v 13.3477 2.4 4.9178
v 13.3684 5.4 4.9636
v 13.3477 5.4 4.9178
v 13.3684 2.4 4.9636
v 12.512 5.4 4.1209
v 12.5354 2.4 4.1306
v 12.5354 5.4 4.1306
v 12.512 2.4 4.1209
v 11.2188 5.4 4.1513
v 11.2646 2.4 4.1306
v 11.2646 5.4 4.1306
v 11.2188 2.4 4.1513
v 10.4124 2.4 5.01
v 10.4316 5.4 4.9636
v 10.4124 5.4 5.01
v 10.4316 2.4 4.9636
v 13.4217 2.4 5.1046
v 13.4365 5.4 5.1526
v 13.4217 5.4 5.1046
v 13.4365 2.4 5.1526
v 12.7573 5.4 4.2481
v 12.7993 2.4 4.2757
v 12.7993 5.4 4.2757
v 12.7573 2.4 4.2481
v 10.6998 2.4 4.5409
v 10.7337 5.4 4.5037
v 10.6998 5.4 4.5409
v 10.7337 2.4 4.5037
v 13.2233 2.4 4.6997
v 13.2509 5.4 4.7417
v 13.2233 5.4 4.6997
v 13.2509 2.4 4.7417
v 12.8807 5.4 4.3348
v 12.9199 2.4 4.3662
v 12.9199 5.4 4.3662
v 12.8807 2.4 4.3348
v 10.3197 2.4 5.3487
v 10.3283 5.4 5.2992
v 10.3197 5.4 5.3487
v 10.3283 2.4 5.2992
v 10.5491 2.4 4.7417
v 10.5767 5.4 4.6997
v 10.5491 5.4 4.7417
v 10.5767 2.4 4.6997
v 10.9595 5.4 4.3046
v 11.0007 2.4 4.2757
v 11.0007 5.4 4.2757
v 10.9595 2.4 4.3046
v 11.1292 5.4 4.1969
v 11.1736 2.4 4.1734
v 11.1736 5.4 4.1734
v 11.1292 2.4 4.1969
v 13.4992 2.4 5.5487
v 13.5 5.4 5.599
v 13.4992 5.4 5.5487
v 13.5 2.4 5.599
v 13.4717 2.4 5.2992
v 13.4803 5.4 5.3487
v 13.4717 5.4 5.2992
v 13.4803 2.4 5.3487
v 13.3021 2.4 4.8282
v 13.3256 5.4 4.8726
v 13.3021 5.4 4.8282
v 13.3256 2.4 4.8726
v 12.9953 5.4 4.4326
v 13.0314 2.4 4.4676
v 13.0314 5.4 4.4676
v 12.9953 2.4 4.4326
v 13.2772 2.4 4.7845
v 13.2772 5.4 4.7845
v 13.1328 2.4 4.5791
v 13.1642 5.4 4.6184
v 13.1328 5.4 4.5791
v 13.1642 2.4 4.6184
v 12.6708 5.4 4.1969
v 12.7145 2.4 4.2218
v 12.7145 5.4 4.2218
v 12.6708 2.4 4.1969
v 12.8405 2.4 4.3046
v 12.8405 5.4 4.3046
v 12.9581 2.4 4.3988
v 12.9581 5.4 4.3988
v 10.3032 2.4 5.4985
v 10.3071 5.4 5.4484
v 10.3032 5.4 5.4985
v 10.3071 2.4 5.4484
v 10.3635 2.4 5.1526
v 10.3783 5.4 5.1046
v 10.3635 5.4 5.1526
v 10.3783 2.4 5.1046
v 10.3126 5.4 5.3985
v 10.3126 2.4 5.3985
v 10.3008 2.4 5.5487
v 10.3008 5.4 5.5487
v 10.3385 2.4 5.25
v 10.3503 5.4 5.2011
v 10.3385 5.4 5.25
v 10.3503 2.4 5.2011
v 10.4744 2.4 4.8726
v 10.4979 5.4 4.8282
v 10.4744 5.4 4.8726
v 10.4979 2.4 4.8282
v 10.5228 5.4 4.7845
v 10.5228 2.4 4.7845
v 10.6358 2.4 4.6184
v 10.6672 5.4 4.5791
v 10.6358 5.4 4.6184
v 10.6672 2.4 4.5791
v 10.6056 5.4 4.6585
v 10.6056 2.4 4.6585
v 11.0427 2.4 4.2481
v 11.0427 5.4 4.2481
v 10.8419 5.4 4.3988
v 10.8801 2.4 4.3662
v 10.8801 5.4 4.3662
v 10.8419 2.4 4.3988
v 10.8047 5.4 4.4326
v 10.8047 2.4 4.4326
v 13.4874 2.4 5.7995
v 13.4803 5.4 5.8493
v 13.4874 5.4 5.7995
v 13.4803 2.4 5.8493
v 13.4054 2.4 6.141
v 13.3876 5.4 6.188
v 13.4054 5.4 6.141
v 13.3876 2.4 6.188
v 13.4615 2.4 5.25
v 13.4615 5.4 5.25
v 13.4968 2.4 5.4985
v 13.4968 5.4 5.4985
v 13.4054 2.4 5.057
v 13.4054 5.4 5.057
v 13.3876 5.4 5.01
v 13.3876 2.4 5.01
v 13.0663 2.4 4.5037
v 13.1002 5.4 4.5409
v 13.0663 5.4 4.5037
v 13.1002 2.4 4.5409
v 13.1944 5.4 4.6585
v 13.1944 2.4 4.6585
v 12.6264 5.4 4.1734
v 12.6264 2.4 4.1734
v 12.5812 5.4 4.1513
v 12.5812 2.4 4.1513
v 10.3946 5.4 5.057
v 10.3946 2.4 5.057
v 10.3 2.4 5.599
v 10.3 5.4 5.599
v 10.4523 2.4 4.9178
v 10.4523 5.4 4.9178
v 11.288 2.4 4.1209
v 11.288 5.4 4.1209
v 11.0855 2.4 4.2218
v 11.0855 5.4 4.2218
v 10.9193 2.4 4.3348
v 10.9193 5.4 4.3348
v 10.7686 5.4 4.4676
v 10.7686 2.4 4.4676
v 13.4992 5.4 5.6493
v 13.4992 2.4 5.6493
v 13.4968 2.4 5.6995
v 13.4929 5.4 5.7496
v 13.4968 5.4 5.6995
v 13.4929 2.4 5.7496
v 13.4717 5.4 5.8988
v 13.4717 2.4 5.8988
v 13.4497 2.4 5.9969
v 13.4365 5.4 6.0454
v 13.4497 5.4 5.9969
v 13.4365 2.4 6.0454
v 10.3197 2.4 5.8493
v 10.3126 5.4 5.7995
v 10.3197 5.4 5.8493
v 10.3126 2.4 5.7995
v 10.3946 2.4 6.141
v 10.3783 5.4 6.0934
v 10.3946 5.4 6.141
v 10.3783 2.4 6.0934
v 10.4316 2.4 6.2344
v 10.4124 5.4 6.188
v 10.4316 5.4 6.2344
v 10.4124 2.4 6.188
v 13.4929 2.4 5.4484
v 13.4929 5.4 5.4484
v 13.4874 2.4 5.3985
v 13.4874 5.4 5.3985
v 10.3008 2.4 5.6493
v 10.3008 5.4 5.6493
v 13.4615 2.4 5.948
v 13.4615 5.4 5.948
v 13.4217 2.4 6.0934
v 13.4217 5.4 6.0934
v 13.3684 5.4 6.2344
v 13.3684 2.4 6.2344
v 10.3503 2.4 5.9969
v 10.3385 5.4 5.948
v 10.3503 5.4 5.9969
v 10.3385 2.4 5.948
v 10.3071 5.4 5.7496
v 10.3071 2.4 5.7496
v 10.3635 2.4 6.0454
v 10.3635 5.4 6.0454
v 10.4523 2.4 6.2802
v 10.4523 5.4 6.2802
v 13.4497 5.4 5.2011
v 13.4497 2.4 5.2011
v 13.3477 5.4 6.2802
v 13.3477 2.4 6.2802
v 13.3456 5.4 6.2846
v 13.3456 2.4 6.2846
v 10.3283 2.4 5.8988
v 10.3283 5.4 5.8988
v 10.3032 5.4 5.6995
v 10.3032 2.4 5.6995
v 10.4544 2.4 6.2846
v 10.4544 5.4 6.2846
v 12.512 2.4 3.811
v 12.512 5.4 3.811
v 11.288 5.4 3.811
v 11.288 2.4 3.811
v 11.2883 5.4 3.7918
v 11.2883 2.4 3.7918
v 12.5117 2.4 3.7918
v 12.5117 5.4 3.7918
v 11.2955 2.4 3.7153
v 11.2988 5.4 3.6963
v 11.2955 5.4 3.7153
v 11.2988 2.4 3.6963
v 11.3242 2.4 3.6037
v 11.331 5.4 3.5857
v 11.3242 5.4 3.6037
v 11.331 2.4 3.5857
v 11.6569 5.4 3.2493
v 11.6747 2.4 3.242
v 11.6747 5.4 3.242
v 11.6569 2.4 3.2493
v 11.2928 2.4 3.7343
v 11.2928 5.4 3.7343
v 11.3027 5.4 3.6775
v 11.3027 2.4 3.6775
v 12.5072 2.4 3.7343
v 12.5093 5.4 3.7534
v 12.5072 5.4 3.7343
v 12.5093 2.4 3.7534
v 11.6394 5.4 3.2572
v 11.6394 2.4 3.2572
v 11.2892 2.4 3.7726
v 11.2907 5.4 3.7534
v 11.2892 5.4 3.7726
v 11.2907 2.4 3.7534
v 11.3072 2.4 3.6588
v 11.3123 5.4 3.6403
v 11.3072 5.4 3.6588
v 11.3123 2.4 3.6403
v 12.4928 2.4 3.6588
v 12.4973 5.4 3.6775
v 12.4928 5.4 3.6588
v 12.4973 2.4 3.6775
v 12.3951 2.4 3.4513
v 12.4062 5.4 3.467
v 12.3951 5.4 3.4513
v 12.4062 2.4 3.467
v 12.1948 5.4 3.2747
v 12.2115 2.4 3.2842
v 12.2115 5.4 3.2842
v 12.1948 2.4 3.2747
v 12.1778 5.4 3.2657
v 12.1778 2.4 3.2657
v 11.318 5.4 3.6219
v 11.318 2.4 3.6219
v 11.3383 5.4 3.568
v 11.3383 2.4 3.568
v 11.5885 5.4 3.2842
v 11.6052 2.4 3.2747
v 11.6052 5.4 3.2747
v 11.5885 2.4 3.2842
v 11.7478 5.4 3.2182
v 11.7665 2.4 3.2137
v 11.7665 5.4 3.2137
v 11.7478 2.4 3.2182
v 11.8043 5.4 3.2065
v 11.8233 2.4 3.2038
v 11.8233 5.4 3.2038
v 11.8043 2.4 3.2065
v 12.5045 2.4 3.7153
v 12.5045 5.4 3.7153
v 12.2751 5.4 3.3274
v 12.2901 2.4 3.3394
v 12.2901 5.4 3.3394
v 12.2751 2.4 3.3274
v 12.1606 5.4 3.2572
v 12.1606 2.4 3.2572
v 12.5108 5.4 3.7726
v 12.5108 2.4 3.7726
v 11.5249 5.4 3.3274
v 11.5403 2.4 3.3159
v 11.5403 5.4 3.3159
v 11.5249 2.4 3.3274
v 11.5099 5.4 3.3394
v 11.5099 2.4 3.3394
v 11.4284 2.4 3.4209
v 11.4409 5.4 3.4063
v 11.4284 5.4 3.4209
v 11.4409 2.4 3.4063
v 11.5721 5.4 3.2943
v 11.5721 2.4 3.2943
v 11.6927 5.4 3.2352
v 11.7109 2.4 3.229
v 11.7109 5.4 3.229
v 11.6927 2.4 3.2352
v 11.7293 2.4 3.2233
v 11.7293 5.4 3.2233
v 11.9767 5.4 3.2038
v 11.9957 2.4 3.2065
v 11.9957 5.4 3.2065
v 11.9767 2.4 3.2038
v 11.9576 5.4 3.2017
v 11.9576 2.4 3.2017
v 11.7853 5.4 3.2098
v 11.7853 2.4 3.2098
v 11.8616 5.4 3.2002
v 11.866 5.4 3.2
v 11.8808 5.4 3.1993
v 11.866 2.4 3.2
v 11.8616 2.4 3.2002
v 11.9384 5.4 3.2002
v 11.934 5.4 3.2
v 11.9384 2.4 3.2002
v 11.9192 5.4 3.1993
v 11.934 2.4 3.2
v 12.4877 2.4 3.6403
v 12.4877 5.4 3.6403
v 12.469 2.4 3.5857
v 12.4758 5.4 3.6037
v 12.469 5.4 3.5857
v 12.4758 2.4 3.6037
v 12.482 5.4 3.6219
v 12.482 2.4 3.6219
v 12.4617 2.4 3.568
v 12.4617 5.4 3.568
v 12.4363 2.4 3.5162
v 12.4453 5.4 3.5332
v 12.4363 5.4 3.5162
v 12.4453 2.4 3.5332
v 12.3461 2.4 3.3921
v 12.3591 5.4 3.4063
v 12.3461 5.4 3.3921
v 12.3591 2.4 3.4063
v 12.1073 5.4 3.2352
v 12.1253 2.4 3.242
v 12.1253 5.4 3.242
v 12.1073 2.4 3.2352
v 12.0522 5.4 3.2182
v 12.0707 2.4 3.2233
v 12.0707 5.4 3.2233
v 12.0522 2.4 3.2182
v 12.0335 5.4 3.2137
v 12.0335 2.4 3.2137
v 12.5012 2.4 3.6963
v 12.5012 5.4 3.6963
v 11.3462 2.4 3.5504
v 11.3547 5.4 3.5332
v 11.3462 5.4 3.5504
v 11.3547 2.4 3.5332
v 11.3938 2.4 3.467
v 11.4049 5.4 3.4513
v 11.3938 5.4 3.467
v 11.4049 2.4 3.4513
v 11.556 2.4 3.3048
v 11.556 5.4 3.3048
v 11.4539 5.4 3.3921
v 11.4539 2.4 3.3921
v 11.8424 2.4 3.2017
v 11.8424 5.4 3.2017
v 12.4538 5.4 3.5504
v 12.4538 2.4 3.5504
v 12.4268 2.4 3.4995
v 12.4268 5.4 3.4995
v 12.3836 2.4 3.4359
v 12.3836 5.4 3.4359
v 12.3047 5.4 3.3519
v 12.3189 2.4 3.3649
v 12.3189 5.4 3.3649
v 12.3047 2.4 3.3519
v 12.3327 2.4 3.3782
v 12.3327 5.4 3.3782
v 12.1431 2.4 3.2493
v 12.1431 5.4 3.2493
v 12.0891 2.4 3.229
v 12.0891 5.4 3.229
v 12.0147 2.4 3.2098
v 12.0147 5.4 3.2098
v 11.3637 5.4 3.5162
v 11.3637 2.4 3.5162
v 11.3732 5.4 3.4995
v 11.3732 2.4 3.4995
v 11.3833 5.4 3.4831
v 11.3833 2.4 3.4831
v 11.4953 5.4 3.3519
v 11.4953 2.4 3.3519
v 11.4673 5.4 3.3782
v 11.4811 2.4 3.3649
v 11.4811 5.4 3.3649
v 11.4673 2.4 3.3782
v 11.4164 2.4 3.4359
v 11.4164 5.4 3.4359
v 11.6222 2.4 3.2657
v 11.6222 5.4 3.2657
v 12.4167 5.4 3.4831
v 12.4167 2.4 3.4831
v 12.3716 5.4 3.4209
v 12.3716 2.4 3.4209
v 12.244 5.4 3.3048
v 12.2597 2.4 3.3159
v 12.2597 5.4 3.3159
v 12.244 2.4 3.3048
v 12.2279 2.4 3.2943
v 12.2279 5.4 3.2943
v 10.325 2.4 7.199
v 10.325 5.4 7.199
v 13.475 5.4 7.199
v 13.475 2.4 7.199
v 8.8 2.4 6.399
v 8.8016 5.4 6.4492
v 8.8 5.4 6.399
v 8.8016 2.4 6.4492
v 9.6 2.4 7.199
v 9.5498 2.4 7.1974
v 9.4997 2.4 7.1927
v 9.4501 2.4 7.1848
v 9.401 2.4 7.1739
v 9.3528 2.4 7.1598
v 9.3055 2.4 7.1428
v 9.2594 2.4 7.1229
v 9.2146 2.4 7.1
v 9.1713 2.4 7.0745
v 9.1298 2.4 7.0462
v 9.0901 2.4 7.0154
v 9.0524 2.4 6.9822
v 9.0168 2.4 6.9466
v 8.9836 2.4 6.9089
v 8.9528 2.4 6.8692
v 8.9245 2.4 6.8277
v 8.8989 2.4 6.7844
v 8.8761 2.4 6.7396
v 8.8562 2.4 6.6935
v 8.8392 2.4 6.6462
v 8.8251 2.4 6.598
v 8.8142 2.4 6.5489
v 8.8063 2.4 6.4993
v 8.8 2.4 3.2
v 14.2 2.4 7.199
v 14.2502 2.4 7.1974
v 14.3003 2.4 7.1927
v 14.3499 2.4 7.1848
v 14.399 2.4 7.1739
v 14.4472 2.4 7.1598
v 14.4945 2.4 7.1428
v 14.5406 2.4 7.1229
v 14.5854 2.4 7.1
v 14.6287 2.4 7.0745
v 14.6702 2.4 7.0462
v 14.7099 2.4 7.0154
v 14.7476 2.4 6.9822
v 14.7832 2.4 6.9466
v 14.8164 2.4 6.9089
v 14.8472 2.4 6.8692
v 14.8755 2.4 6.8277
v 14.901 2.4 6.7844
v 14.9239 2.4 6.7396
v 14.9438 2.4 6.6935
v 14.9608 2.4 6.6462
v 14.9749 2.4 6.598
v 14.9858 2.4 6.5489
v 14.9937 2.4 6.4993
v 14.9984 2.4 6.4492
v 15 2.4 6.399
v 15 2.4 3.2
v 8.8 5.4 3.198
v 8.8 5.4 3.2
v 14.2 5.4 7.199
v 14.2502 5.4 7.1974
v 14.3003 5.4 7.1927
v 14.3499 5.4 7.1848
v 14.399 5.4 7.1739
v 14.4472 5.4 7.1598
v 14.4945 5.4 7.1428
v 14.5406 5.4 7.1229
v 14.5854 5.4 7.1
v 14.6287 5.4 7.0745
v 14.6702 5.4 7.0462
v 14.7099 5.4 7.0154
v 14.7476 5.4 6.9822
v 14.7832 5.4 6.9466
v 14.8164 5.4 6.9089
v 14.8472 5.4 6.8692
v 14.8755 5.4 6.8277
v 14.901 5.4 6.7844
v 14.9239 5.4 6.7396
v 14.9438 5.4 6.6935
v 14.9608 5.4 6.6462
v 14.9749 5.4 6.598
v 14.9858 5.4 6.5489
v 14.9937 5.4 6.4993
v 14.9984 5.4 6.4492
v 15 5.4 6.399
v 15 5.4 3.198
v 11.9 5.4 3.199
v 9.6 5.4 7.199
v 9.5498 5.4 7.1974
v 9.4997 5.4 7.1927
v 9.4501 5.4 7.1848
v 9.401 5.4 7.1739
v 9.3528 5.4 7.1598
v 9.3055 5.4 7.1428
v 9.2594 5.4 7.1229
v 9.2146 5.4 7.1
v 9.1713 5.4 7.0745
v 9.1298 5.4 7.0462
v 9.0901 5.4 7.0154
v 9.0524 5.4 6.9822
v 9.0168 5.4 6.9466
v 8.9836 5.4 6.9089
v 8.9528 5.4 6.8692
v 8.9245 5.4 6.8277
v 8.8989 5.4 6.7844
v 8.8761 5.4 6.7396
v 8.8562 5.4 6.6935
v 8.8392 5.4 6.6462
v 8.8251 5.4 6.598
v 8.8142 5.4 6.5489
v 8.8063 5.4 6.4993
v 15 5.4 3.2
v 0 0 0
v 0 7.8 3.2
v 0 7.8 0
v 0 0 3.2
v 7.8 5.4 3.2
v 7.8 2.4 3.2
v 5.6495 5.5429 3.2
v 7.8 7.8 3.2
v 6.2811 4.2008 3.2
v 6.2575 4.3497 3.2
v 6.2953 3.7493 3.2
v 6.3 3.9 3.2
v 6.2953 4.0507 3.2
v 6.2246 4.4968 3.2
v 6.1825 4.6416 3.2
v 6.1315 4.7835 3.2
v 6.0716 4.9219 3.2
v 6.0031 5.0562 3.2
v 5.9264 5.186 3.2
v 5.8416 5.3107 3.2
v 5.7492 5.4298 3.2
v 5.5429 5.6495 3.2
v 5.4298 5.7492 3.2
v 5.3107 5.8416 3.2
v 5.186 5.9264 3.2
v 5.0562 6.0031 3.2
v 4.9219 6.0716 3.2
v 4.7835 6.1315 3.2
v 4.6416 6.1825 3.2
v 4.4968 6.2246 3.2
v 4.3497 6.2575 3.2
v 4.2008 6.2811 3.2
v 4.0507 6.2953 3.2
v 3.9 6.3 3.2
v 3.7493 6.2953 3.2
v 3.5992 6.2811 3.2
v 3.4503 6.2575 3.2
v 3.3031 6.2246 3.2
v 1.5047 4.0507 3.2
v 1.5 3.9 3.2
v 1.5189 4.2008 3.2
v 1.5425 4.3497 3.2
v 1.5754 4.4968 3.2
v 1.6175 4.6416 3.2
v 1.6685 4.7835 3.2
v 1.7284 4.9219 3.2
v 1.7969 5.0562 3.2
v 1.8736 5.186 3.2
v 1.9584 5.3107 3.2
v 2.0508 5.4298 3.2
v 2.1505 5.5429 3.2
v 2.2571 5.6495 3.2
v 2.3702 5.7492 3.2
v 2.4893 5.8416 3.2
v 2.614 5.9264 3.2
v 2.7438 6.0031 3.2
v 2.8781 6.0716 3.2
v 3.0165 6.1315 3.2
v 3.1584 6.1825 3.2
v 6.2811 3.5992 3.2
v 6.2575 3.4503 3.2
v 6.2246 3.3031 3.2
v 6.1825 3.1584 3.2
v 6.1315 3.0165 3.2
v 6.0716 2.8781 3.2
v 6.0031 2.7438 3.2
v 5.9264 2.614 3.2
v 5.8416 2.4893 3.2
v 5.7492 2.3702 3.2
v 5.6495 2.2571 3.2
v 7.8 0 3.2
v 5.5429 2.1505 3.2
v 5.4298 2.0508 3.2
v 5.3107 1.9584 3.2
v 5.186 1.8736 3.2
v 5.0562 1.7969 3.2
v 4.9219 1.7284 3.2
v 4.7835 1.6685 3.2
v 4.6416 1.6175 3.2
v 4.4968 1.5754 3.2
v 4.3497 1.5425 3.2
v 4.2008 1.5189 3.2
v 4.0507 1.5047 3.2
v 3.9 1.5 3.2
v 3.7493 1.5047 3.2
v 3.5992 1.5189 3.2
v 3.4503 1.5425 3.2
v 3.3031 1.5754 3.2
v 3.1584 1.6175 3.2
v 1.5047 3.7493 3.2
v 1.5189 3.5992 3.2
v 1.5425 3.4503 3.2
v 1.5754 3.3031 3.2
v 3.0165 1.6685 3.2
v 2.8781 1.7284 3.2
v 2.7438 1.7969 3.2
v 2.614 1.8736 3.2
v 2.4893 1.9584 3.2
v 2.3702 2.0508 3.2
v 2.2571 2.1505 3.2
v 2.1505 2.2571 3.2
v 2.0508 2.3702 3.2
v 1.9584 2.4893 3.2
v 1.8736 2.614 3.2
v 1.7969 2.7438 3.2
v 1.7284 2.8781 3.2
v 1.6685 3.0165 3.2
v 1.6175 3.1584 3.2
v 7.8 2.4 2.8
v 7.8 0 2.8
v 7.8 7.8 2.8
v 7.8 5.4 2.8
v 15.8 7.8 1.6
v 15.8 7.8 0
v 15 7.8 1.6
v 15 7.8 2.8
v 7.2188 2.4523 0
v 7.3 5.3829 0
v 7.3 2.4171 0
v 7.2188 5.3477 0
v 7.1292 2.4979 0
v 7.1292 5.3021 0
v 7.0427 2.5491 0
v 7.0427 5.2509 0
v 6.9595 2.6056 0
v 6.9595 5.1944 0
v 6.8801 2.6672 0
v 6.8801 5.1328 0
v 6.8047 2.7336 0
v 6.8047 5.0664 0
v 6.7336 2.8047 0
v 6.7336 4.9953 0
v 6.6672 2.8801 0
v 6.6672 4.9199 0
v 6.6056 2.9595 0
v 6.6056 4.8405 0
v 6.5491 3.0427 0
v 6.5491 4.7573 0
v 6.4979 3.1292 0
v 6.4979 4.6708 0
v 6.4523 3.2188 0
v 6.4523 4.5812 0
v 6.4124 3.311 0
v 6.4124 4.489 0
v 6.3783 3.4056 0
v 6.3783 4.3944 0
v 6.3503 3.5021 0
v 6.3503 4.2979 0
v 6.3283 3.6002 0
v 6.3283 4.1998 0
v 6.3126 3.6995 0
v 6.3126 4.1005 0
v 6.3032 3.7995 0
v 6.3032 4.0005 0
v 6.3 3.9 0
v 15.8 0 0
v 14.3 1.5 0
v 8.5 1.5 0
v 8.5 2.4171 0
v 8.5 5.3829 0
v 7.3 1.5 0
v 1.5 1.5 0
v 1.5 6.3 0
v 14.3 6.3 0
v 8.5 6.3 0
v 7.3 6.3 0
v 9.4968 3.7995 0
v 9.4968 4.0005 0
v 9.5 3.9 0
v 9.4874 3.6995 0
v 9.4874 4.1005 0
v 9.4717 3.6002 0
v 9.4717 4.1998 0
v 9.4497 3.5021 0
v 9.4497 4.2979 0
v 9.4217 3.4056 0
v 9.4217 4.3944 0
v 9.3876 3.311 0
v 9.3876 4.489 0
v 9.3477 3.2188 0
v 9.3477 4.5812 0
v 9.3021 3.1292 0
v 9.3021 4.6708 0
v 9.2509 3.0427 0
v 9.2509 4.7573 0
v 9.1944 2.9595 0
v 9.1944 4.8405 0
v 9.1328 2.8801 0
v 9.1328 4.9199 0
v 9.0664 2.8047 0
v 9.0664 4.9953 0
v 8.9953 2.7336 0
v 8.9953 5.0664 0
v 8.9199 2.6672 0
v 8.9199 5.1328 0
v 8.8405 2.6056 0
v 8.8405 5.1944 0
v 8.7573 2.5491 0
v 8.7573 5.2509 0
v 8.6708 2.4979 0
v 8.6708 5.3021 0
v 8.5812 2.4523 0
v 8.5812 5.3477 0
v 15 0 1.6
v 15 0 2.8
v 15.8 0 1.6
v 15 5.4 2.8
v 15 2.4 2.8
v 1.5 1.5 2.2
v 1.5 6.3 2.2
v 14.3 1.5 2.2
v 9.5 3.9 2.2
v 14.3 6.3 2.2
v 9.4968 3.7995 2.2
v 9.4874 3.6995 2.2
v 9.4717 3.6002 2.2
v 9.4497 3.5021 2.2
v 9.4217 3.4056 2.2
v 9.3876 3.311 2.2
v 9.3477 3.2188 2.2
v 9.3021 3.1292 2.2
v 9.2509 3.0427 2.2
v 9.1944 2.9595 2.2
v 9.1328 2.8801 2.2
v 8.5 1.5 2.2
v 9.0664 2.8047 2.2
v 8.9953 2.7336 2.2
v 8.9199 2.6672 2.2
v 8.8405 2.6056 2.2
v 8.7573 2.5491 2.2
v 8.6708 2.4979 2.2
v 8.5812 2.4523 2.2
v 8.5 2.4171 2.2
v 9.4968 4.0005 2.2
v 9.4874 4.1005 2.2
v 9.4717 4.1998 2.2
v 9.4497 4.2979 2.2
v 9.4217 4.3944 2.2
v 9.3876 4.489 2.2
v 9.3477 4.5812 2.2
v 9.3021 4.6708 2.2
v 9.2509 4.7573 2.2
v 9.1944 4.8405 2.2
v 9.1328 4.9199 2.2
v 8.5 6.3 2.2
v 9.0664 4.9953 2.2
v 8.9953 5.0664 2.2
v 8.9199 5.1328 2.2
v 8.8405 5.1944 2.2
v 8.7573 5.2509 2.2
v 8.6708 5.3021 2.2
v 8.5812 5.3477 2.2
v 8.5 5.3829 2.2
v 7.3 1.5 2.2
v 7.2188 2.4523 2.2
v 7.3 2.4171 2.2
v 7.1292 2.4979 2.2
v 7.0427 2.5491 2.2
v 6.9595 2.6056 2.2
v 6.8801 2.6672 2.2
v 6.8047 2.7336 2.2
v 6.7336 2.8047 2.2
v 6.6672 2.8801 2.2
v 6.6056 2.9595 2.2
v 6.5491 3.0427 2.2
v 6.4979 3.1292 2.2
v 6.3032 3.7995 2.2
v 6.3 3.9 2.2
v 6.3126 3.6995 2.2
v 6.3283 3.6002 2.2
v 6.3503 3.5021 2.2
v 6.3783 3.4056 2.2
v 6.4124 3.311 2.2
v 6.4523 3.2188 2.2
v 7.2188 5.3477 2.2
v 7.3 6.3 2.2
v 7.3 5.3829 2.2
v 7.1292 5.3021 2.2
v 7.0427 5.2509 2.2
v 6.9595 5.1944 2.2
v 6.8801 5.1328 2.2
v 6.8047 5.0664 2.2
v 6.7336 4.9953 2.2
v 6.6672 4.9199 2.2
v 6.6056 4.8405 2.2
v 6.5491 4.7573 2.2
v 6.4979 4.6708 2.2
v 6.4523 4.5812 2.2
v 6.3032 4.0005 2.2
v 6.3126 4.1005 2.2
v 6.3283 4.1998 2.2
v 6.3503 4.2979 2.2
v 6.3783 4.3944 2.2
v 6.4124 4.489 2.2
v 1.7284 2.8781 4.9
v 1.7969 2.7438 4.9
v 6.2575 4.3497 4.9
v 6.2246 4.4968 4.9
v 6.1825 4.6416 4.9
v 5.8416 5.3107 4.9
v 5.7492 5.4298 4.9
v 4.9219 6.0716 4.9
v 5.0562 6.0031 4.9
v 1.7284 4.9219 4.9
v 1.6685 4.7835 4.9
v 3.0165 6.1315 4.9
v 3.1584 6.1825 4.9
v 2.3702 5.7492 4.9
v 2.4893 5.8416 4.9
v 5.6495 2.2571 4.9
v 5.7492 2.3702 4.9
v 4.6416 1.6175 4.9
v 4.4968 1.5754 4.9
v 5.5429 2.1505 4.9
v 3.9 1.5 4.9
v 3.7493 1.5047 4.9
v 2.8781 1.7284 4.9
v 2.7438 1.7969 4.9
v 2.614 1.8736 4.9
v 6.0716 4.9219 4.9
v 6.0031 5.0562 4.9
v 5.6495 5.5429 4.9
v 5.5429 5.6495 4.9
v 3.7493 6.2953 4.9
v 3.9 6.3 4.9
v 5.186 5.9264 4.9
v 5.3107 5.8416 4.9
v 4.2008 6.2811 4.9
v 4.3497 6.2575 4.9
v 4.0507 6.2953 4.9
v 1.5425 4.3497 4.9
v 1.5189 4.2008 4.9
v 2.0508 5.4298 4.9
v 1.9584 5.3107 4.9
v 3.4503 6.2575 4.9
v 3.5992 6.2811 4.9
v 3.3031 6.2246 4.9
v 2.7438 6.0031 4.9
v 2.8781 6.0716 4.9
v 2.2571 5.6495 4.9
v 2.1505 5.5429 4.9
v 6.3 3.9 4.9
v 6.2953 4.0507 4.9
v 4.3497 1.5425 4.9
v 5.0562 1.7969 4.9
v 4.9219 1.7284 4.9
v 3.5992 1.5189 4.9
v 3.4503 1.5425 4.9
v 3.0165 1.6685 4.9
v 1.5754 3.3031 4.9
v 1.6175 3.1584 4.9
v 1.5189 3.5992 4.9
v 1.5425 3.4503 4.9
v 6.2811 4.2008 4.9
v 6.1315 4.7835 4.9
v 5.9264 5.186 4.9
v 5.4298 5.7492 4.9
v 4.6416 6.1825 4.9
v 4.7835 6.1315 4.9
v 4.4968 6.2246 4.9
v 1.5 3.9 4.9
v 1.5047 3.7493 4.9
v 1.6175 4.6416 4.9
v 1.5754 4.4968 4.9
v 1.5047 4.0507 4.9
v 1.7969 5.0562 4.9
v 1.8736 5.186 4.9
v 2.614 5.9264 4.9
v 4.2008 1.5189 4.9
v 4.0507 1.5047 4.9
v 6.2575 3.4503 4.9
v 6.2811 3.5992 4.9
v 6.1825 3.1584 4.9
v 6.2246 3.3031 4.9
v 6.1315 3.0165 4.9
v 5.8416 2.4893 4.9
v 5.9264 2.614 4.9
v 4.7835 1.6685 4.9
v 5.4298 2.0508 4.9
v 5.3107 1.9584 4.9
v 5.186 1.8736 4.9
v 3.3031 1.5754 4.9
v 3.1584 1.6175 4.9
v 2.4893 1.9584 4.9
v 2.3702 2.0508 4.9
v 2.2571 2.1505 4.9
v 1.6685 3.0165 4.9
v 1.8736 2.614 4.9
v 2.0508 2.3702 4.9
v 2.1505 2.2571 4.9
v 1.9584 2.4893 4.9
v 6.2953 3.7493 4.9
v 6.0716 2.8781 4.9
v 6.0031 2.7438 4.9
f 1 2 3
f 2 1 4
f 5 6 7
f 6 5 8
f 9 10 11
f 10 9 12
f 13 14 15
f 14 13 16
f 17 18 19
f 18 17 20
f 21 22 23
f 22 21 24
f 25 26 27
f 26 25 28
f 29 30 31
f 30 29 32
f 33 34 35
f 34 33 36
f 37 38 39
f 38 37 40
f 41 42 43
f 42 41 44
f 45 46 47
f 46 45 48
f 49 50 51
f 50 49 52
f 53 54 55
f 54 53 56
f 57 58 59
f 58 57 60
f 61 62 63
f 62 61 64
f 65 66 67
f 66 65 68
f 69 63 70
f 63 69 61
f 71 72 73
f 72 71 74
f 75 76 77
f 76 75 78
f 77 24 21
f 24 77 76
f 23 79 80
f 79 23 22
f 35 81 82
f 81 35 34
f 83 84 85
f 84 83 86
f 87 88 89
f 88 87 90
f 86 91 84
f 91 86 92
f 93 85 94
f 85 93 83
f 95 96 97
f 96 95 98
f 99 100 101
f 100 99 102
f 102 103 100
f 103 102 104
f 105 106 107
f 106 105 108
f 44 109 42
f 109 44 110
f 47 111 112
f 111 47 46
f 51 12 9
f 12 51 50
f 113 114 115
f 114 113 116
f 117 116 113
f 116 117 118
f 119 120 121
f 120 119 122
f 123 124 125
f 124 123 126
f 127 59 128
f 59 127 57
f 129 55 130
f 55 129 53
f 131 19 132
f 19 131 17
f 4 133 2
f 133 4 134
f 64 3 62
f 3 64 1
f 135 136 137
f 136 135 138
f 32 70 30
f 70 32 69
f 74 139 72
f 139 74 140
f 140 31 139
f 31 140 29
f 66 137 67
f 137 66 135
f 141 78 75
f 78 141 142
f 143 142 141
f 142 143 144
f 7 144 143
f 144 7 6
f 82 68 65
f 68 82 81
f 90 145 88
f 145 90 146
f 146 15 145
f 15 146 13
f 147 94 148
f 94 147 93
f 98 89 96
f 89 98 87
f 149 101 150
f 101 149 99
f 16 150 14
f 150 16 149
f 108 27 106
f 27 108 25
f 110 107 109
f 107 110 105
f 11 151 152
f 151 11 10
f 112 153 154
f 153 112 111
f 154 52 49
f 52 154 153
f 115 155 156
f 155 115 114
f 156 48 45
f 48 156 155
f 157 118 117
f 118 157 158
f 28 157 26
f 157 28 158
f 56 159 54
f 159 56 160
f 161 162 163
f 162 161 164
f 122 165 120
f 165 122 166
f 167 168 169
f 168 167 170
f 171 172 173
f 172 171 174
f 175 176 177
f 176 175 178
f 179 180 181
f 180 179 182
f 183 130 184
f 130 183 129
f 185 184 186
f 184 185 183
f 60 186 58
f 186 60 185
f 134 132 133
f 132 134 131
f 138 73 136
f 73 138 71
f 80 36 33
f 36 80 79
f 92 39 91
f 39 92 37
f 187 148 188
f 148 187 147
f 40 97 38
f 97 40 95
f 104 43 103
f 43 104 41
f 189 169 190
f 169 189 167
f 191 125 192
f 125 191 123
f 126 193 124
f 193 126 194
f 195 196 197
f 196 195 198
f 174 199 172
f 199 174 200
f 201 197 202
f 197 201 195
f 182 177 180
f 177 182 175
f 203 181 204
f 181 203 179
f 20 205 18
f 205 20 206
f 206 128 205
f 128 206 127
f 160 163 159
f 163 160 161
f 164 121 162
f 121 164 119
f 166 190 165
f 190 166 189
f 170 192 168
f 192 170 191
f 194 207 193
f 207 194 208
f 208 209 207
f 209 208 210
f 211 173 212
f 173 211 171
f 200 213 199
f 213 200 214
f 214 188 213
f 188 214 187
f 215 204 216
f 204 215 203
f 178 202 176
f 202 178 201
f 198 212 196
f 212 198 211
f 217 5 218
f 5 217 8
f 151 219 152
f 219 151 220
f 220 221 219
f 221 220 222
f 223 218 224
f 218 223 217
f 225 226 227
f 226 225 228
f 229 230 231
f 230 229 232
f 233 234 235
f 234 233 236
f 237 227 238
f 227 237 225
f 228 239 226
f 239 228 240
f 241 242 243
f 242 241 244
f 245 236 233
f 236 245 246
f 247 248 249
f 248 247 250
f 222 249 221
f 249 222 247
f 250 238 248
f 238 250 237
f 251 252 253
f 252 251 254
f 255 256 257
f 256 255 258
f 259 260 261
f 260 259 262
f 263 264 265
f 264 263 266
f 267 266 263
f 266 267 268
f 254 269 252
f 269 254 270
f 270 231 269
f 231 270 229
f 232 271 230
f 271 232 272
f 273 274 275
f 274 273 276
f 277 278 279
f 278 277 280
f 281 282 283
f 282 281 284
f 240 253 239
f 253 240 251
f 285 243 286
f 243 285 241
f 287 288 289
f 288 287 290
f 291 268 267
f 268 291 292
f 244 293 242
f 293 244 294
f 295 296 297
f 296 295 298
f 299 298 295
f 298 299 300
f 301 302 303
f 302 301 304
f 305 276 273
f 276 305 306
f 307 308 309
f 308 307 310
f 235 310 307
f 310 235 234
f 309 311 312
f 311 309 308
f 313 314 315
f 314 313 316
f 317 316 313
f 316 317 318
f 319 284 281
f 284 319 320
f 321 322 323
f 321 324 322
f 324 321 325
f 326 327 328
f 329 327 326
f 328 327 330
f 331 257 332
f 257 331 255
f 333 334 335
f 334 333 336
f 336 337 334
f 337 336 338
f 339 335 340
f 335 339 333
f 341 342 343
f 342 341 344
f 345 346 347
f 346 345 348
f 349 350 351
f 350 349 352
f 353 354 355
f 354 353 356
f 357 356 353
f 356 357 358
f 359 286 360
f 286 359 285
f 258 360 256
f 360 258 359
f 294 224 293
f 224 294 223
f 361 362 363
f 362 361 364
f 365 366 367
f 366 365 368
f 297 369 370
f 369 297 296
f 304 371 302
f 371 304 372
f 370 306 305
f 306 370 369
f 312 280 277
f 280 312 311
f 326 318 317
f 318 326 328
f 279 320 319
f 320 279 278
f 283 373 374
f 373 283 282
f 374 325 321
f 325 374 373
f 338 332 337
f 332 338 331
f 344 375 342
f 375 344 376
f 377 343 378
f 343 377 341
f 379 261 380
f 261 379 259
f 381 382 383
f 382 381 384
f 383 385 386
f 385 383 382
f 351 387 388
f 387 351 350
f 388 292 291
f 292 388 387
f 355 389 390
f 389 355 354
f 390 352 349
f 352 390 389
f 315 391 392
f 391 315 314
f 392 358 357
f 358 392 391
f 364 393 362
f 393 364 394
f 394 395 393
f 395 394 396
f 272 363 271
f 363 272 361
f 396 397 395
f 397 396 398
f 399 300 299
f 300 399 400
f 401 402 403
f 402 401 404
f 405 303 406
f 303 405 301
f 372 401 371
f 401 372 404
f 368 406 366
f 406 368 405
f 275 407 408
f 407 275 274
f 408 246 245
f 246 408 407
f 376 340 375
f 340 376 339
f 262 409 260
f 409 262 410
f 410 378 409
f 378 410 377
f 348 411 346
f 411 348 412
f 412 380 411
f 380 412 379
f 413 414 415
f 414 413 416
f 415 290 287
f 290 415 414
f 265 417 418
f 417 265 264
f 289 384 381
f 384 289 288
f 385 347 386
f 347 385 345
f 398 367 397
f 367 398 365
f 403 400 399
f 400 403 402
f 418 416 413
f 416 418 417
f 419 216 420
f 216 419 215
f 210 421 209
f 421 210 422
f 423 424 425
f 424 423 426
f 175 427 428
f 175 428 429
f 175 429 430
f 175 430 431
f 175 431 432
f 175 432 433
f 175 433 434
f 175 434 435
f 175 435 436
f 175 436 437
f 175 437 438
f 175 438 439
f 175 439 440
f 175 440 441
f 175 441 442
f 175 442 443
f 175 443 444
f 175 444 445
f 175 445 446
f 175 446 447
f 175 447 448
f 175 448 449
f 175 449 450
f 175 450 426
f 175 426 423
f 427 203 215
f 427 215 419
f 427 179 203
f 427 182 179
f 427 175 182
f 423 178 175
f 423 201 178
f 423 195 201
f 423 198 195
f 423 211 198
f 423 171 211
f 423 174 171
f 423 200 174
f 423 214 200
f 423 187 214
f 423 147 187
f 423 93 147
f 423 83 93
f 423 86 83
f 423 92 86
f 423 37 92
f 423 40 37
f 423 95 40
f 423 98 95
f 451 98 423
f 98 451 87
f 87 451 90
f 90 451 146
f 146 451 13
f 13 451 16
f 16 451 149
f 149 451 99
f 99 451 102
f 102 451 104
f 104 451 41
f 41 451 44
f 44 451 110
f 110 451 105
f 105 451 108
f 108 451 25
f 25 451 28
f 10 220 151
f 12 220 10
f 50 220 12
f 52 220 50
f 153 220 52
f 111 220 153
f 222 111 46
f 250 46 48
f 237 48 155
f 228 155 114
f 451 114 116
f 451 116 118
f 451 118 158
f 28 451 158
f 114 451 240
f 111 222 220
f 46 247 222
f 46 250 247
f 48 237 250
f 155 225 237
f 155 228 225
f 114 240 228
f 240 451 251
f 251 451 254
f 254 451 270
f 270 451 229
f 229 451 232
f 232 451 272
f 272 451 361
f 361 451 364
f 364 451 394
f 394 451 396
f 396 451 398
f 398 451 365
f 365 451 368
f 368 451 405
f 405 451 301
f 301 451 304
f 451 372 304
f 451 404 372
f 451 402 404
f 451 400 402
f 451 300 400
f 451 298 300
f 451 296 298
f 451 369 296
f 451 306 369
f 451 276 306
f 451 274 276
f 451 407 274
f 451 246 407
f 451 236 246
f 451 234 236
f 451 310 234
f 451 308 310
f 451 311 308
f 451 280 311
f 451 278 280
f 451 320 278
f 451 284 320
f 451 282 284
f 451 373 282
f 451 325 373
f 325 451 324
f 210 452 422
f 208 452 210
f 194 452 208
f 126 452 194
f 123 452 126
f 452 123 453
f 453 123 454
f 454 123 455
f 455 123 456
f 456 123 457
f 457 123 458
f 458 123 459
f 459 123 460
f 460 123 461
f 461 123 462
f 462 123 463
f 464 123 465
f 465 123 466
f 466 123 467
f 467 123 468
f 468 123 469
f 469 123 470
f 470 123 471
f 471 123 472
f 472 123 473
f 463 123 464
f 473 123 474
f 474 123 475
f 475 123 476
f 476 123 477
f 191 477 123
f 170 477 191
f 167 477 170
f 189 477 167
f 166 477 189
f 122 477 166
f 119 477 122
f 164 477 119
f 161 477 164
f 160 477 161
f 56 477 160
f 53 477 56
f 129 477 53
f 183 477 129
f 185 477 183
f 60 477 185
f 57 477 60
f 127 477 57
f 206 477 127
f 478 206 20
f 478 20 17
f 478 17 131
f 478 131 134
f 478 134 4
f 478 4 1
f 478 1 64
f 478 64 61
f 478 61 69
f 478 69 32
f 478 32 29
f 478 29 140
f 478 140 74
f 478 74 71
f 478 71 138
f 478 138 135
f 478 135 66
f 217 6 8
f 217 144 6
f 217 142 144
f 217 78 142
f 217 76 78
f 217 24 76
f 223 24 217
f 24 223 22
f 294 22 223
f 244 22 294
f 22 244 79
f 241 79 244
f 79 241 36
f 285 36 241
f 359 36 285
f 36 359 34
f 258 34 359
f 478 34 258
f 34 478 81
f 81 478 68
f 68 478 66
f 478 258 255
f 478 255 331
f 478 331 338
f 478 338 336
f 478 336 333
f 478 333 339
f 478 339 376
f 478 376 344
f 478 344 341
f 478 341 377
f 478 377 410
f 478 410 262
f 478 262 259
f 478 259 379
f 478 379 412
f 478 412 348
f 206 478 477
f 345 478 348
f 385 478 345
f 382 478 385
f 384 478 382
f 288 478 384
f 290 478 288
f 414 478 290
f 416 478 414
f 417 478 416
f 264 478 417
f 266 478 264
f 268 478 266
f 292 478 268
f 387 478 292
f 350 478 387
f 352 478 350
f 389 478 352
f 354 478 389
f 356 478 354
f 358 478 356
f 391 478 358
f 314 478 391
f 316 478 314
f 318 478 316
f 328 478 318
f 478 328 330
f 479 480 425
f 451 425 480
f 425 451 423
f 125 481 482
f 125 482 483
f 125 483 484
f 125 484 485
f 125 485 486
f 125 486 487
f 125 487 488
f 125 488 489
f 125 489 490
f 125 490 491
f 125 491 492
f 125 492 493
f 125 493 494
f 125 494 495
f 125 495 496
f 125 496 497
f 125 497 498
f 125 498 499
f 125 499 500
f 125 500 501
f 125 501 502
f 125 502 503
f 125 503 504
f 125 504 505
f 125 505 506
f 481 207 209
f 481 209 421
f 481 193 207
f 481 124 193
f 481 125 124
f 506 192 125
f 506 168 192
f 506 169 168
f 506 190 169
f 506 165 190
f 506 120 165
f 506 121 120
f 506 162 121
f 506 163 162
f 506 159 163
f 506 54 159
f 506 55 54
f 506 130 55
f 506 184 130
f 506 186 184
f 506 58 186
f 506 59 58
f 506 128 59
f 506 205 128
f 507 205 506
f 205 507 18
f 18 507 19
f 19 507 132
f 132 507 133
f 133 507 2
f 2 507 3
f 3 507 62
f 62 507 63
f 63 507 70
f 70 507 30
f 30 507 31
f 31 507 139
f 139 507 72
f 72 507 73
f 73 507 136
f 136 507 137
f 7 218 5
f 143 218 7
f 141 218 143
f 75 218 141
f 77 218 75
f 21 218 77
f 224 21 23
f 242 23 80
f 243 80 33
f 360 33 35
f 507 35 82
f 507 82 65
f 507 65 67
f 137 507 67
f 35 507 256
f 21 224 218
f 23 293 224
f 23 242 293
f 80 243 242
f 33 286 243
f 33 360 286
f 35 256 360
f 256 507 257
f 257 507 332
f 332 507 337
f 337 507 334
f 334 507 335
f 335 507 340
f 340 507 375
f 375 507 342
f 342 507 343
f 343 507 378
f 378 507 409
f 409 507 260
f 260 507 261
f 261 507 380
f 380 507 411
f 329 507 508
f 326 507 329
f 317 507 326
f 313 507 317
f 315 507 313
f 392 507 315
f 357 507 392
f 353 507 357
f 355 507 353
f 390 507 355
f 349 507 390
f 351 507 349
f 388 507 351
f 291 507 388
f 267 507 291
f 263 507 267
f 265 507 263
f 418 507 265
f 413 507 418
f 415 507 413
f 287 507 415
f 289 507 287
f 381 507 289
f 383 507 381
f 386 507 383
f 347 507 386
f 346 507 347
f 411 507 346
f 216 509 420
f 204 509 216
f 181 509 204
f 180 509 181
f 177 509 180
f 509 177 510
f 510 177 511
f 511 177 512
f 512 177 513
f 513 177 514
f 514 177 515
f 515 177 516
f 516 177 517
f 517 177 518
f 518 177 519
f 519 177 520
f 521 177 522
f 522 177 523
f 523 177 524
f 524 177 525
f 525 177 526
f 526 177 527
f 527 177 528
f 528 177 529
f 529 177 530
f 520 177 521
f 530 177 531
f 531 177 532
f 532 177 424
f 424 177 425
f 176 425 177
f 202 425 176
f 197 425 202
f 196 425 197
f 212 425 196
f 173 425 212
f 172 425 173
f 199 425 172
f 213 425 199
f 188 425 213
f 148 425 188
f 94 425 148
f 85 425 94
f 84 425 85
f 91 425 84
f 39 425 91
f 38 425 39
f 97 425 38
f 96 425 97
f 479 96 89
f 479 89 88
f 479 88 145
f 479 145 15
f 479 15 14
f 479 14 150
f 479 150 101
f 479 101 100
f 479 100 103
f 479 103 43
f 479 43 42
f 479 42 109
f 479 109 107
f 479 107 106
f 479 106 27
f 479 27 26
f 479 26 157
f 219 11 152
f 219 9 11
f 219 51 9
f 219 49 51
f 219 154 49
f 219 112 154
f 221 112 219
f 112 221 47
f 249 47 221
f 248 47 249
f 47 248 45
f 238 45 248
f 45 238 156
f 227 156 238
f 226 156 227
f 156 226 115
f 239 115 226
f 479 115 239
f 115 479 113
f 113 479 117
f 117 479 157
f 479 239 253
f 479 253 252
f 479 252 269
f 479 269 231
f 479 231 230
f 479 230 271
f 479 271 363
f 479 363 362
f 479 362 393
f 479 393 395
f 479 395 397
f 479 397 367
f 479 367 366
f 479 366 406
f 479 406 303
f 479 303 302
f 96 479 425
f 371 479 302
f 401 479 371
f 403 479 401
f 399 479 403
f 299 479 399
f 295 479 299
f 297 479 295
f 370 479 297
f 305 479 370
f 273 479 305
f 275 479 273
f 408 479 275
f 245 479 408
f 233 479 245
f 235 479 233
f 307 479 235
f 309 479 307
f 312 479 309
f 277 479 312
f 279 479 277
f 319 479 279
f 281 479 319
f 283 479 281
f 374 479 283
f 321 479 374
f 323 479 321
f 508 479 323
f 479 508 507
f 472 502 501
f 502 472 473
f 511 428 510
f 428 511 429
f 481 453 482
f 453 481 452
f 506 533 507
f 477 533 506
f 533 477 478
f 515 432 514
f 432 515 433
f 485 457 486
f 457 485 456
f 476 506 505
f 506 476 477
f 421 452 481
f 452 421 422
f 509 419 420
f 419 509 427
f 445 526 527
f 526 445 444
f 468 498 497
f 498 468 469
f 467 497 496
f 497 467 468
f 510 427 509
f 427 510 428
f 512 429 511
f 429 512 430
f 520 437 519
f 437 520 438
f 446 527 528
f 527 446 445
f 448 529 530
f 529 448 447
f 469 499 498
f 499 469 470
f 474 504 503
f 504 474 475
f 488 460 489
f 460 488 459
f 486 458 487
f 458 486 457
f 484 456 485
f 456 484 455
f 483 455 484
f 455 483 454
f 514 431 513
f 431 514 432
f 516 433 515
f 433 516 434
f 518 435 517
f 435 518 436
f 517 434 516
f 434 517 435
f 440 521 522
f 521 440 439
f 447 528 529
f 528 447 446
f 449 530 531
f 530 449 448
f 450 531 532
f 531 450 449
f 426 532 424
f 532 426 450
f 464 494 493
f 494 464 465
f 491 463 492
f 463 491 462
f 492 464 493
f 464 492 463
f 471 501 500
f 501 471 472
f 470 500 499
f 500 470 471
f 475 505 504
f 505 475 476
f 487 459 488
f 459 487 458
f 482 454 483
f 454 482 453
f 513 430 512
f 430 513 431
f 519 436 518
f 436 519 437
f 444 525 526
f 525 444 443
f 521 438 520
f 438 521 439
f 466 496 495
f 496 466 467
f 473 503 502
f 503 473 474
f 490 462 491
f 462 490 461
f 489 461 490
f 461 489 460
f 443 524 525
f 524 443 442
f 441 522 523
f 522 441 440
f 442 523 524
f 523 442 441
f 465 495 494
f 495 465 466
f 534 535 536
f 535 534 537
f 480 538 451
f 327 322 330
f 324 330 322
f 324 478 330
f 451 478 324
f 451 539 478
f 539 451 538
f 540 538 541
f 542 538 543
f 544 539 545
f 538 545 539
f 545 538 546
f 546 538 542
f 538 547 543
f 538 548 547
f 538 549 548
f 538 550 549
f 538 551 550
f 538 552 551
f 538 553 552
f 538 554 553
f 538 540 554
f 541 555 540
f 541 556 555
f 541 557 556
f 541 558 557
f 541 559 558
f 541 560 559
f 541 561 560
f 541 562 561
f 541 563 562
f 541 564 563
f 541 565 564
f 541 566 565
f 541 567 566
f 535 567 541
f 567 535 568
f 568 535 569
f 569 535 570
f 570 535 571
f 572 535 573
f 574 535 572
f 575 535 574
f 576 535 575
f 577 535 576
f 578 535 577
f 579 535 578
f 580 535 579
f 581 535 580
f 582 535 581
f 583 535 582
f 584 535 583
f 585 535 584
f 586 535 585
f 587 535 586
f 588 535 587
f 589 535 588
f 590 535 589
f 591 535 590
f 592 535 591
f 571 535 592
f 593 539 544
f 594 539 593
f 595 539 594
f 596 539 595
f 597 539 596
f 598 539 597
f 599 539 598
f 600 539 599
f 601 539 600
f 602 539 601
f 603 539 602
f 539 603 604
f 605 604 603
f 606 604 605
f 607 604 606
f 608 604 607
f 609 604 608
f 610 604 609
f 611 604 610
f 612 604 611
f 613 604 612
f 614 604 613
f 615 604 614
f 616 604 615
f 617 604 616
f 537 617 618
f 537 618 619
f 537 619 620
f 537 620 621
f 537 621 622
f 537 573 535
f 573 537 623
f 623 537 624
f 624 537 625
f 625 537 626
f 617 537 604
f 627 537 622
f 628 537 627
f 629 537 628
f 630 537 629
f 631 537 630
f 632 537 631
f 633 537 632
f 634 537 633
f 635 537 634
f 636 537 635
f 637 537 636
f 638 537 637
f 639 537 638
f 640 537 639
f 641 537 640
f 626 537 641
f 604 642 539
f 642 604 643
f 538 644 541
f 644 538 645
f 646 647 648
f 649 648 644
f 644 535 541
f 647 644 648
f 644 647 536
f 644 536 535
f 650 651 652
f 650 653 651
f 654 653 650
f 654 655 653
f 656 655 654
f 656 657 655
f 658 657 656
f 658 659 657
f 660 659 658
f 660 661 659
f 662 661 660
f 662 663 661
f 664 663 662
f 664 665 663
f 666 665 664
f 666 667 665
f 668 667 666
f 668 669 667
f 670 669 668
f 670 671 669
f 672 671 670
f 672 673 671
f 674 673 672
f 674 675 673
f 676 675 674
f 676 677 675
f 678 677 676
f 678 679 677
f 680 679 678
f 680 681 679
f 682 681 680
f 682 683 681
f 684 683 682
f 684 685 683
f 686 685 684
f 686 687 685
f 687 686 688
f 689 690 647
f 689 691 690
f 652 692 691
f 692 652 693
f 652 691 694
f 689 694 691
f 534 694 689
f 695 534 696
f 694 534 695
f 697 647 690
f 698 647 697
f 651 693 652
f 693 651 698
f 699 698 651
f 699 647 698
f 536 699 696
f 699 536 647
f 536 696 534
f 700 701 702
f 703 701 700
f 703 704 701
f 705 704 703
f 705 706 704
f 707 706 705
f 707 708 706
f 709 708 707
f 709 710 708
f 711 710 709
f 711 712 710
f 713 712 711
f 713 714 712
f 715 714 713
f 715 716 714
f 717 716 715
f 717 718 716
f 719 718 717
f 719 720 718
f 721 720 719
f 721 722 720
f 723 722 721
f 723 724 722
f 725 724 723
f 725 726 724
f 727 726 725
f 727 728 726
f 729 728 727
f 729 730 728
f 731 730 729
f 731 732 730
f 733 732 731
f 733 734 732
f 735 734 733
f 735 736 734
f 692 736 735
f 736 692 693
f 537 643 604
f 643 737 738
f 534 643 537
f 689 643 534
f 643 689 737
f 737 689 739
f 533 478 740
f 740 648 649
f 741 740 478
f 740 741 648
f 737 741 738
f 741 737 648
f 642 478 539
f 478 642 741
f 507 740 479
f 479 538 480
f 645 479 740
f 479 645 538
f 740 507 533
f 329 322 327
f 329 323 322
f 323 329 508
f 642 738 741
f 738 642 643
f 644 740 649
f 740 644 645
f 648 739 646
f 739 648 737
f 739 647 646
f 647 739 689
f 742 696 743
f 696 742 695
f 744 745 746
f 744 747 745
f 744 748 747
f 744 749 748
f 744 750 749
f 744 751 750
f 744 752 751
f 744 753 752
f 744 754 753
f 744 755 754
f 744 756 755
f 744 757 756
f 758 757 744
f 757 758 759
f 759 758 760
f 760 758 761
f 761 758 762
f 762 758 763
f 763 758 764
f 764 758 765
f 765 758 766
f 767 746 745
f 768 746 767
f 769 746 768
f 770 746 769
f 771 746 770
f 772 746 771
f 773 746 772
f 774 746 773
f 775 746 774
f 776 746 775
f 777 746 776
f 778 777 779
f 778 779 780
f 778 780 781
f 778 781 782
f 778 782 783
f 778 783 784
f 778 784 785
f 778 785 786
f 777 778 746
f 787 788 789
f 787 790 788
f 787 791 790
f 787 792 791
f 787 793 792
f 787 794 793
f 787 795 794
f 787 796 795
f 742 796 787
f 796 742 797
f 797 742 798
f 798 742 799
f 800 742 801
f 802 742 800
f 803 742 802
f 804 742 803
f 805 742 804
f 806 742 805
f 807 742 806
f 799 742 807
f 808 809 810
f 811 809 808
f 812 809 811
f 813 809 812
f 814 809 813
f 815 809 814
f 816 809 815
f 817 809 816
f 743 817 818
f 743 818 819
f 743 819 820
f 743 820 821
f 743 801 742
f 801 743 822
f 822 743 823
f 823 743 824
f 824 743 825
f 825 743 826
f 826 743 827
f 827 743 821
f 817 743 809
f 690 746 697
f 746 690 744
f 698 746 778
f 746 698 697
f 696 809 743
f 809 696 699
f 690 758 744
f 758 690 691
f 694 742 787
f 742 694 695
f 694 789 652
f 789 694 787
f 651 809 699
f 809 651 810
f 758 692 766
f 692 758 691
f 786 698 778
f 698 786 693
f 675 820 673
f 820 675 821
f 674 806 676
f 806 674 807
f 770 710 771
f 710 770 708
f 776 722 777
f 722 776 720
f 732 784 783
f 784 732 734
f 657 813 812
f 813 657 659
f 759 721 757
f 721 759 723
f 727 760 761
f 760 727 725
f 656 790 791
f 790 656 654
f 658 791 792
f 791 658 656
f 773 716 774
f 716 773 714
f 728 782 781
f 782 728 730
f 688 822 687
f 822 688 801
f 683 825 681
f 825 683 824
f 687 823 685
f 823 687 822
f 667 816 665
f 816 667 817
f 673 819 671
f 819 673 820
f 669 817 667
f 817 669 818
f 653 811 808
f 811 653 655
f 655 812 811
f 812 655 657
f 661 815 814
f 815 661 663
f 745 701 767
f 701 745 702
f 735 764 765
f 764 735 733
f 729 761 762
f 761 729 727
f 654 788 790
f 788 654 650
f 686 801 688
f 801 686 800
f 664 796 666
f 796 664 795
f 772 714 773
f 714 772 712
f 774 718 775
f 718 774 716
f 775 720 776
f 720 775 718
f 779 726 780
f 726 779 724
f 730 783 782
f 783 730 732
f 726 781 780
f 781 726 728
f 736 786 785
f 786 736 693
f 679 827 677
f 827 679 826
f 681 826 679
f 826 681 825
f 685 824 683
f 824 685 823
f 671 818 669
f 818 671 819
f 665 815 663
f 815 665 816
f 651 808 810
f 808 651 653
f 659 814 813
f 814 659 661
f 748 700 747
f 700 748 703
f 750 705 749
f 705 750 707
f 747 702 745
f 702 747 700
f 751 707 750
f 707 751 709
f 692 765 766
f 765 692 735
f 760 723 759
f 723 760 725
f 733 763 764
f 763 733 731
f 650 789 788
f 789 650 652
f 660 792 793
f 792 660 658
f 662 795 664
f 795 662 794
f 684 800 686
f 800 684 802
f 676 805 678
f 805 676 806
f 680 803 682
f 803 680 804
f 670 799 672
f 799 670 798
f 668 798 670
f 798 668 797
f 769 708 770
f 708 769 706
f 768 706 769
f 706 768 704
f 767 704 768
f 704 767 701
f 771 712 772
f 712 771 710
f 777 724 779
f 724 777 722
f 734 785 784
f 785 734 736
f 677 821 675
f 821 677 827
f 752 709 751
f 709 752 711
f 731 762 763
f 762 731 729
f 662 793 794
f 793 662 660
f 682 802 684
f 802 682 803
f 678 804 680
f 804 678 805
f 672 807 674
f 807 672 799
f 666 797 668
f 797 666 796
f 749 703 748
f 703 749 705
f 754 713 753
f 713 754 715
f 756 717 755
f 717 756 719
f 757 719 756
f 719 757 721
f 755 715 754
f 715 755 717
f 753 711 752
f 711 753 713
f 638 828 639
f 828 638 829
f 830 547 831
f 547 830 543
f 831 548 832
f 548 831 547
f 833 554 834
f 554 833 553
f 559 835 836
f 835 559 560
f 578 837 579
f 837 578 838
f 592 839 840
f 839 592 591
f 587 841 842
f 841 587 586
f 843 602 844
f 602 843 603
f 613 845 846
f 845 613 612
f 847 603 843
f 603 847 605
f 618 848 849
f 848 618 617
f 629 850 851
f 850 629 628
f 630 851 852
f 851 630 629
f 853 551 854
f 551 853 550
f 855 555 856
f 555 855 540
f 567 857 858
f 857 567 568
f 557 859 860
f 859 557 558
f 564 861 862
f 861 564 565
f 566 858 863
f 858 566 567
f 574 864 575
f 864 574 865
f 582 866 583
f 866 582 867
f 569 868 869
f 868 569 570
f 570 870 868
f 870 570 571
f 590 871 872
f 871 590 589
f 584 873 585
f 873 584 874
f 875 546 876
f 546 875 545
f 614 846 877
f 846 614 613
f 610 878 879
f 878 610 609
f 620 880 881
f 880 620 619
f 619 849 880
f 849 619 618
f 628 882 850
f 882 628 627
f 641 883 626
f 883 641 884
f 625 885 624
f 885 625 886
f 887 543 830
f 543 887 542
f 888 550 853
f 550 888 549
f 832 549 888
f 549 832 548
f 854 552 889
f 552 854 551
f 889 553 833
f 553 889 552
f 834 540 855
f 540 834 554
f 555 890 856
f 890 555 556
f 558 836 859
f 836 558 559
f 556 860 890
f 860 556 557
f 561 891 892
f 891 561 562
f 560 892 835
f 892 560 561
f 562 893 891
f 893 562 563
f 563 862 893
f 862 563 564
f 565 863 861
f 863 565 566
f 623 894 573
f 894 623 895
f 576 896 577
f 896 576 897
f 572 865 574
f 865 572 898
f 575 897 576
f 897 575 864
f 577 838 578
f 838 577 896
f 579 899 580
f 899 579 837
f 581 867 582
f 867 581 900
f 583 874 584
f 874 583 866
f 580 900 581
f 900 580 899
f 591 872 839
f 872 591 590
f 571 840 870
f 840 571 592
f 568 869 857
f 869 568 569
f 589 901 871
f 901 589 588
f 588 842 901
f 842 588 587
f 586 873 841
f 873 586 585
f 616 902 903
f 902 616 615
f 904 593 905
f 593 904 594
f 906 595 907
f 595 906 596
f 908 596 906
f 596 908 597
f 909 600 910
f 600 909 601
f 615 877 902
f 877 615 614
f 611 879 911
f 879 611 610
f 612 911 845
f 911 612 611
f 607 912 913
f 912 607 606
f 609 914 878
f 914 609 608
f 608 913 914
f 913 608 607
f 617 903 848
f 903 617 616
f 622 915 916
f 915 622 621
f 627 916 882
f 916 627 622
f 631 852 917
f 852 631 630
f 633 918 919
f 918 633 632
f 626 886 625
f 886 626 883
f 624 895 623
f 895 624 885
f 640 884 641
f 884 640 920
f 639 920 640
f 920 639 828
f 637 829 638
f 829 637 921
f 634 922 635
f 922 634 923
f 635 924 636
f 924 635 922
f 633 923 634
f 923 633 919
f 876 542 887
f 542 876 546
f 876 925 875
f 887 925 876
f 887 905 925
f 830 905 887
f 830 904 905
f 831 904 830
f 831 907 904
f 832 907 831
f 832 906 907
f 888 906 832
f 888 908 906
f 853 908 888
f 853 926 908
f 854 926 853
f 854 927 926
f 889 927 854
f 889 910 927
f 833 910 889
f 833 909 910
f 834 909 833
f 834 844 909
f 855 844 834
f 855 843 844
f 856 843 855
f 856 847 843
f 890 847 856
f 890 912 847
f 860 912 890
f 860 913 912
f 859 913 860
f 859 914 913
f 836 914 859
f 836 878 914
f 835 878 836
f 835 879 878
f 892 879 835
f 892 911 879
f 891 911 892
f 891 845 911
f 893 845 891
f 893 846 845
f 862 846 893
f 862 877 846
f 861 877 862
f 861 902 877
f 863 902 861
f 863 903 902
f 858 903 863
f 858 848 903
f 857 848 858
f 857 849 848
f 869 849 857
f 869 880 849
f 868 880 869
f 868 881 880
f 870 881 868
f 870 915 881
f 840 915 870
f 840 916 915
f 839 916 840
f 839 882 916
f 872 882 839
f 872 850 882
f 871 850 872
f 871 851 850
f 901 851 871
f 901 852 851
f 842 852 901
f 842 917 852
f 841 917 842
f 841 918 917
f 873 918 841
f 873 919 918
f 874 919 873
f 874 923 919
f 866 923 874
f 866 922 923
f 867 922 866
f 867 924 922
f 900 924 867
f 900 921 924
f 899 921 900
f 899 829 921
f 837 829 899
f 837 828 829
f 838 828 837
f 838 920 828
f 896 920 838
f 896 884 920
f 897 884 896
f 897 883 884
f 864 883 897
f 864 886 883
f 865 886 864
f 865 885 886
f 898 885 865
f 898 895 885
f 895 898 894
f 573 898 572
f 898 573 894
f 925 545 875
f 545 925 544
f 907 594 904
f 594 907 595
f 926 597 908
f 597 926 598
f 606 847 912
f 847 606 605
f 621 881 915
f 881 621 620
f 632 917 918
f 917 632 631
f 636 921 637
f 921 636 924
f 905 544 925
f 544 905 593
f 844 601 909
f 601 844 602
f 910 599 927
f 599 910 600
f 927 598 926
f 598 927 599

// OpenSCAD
eps = 0.001;

modelScale = 1.0;



nr_length_units = 2;
addInnerWalls = true;


// printability corrections; values should be zero for real object dimensions 
PRINTABLE = 0;
correction_t1 = PRINTABLE ? 0.05 : 0.0;



unit_size = 7.8*modelScale;
pitch = 8.0*modelScale;

h1 = 3.2*modelScale; // height
h2 = h1-1.0*modelScale; // inner height
h3 = 2.8*modelScale; // height
h4 = 1.6*modelScale;

// internal pin
r1 = 3.2/2*modelScale;


t1 = (1.5-correction_t1)*modelScale; // wall thickness
t2 = 1.2*modelScale; // inner wall thickness
tRidge = 0.8*modelScale;

function getSize(prmNrOfUnits) = prmNrOfUnits*unit_size + (prmNrOfUnits - 1) * (pitch - unit_size);


length = getSize(nr_length_units);
width = unit_size;
echo("length", length);
echo("width", width);

lengthStep1 = getSize(1);
lengthStep2 = length-lengthStep1-tRidge;

h_pin = 1.7*modelScale;
r_pin1 = 4.8/2*modelScale;


offsetClipX = 8.8*modelScale;
hClip = 4.0*modelScale;
wClip = 3.0*modelScale;
lClip = length-offsetClipX-tRidge;
rClip1 = 0.8*modelScale;
rClip2 = 0.612*modelScale;
rClip3 = 1.6*modelScale;
offsetRClip3Z = 2.4*modelScale;
xPosClip1 = 1.525*modelScale;
zPosClip1 = hClip;
xPosClip2 = 1.665*modelScale;
zPosClip2 = 3.012*modelScale;



module drawExternalPinSolid()
{
	cylinder(h_pin+eps,r_pin1,r_pin1,$fn=100*modelScale);
}


module drawInternalPin()
{
	cylinder(h2+eps,r1,r1,$fn=100*modelScale);
}


module drawInnerWallsX()
{
    if (nr_length_units > 1)
    {        
        for (x = [1:nr_length_units-1])
        {            
            translate([x*pitch-(pitch-unit_size)/2-t2/2,t1-eps,0]) cube([t2,width-2*t1+2*eps,h2+eps]);
        }
    }
}


module drawInternalPins()
{
	for (x = [1:nr_length_units-1])
    {
        translate([x*pitch-(pitch-unit_size)/2,width/2,0]) drawInternalPin();
	}
}


module drawClip()
{
    difference()
	{
		union()
		{
            hull()
            {
                translate([rClip1,0,hClip-rClip1]) rotate([-90,0,0]) cylinder(wClip,rClip1,rClip1,$fn=100*modelScale);
                translate([lClip-rClip1,0,hClip-rClip1]) rotate([-90,0,0]) cylinder(wClip,rClip1,rClip1,$fn=100*modelScale);
                translate([0,0,-eps]) cube([lClip,wClip,eps]);
            }
        }   
		union()
		{
            translate([lClip/2,-eps,offsetRClip3Z]) rotate([-90,0,0]) cylinder(wClip+2*eps,rClip3,rClip3,$fn=200*modelScale);
            
            hull()
            {
                translate([lClip/2,-eps,hClip]) rotate([-90,0,0]) cylinder(wClip+2*eps,rClip2,rClip2,$fn=200*modelScale);
                translate([lClip/2,-eps,rClip2]) rotate([-90,0,0]) cylinder(wClip+2*eps,rClip2,rClip2,$fn=200*modelScale);
            } 
 
            hull()
            {
                translate([xPosClip1,-eps,zPosClip1]) cube([lClip-2*xPosClip1,wClip+2*eps,eps]);
                translate([xPosClip2,-eps,zPosClip2-eps]) cube([lClip-2*xPosClip2,wClip+2*eps,eps]);
            }
        }   
    }  
}


module drawPlate() 
{
	difference()
	{
		union()
		{	           
			cube([lengthStep1,width,h1]);
            translate([offsetClipX,width/2-wClip/2,h1-eps]) drawClip();
            translate([lengthStep1-eps,width/2-wClip/2,h3-eps]) cube([lengthStep2+eps,wClip,h1-h3+eps]);
            translate([lengthStep1-eps,0,0]) cube([lengthStep2+eps,width,h3]);
            translate([lengthStep1+lengthStep2-eps,0,0]) cube([tRidge+eps,width,h4]);
		}
		union()
		{	
			translate([t1,t1,-eps]) cube([length-2*t1,width-2*t1,h2+eps]);
		}
	}

    if (addInnerWalls)
    {
        drawInnerWallsX();
    }
	drawInternalPins();
    translate([unit_size/2,width/2,h1-eps]) drawExternalPinSolid();
}



// tests
//drawInnerWallsX();
//drawClip();

// parts
drawPlate();
